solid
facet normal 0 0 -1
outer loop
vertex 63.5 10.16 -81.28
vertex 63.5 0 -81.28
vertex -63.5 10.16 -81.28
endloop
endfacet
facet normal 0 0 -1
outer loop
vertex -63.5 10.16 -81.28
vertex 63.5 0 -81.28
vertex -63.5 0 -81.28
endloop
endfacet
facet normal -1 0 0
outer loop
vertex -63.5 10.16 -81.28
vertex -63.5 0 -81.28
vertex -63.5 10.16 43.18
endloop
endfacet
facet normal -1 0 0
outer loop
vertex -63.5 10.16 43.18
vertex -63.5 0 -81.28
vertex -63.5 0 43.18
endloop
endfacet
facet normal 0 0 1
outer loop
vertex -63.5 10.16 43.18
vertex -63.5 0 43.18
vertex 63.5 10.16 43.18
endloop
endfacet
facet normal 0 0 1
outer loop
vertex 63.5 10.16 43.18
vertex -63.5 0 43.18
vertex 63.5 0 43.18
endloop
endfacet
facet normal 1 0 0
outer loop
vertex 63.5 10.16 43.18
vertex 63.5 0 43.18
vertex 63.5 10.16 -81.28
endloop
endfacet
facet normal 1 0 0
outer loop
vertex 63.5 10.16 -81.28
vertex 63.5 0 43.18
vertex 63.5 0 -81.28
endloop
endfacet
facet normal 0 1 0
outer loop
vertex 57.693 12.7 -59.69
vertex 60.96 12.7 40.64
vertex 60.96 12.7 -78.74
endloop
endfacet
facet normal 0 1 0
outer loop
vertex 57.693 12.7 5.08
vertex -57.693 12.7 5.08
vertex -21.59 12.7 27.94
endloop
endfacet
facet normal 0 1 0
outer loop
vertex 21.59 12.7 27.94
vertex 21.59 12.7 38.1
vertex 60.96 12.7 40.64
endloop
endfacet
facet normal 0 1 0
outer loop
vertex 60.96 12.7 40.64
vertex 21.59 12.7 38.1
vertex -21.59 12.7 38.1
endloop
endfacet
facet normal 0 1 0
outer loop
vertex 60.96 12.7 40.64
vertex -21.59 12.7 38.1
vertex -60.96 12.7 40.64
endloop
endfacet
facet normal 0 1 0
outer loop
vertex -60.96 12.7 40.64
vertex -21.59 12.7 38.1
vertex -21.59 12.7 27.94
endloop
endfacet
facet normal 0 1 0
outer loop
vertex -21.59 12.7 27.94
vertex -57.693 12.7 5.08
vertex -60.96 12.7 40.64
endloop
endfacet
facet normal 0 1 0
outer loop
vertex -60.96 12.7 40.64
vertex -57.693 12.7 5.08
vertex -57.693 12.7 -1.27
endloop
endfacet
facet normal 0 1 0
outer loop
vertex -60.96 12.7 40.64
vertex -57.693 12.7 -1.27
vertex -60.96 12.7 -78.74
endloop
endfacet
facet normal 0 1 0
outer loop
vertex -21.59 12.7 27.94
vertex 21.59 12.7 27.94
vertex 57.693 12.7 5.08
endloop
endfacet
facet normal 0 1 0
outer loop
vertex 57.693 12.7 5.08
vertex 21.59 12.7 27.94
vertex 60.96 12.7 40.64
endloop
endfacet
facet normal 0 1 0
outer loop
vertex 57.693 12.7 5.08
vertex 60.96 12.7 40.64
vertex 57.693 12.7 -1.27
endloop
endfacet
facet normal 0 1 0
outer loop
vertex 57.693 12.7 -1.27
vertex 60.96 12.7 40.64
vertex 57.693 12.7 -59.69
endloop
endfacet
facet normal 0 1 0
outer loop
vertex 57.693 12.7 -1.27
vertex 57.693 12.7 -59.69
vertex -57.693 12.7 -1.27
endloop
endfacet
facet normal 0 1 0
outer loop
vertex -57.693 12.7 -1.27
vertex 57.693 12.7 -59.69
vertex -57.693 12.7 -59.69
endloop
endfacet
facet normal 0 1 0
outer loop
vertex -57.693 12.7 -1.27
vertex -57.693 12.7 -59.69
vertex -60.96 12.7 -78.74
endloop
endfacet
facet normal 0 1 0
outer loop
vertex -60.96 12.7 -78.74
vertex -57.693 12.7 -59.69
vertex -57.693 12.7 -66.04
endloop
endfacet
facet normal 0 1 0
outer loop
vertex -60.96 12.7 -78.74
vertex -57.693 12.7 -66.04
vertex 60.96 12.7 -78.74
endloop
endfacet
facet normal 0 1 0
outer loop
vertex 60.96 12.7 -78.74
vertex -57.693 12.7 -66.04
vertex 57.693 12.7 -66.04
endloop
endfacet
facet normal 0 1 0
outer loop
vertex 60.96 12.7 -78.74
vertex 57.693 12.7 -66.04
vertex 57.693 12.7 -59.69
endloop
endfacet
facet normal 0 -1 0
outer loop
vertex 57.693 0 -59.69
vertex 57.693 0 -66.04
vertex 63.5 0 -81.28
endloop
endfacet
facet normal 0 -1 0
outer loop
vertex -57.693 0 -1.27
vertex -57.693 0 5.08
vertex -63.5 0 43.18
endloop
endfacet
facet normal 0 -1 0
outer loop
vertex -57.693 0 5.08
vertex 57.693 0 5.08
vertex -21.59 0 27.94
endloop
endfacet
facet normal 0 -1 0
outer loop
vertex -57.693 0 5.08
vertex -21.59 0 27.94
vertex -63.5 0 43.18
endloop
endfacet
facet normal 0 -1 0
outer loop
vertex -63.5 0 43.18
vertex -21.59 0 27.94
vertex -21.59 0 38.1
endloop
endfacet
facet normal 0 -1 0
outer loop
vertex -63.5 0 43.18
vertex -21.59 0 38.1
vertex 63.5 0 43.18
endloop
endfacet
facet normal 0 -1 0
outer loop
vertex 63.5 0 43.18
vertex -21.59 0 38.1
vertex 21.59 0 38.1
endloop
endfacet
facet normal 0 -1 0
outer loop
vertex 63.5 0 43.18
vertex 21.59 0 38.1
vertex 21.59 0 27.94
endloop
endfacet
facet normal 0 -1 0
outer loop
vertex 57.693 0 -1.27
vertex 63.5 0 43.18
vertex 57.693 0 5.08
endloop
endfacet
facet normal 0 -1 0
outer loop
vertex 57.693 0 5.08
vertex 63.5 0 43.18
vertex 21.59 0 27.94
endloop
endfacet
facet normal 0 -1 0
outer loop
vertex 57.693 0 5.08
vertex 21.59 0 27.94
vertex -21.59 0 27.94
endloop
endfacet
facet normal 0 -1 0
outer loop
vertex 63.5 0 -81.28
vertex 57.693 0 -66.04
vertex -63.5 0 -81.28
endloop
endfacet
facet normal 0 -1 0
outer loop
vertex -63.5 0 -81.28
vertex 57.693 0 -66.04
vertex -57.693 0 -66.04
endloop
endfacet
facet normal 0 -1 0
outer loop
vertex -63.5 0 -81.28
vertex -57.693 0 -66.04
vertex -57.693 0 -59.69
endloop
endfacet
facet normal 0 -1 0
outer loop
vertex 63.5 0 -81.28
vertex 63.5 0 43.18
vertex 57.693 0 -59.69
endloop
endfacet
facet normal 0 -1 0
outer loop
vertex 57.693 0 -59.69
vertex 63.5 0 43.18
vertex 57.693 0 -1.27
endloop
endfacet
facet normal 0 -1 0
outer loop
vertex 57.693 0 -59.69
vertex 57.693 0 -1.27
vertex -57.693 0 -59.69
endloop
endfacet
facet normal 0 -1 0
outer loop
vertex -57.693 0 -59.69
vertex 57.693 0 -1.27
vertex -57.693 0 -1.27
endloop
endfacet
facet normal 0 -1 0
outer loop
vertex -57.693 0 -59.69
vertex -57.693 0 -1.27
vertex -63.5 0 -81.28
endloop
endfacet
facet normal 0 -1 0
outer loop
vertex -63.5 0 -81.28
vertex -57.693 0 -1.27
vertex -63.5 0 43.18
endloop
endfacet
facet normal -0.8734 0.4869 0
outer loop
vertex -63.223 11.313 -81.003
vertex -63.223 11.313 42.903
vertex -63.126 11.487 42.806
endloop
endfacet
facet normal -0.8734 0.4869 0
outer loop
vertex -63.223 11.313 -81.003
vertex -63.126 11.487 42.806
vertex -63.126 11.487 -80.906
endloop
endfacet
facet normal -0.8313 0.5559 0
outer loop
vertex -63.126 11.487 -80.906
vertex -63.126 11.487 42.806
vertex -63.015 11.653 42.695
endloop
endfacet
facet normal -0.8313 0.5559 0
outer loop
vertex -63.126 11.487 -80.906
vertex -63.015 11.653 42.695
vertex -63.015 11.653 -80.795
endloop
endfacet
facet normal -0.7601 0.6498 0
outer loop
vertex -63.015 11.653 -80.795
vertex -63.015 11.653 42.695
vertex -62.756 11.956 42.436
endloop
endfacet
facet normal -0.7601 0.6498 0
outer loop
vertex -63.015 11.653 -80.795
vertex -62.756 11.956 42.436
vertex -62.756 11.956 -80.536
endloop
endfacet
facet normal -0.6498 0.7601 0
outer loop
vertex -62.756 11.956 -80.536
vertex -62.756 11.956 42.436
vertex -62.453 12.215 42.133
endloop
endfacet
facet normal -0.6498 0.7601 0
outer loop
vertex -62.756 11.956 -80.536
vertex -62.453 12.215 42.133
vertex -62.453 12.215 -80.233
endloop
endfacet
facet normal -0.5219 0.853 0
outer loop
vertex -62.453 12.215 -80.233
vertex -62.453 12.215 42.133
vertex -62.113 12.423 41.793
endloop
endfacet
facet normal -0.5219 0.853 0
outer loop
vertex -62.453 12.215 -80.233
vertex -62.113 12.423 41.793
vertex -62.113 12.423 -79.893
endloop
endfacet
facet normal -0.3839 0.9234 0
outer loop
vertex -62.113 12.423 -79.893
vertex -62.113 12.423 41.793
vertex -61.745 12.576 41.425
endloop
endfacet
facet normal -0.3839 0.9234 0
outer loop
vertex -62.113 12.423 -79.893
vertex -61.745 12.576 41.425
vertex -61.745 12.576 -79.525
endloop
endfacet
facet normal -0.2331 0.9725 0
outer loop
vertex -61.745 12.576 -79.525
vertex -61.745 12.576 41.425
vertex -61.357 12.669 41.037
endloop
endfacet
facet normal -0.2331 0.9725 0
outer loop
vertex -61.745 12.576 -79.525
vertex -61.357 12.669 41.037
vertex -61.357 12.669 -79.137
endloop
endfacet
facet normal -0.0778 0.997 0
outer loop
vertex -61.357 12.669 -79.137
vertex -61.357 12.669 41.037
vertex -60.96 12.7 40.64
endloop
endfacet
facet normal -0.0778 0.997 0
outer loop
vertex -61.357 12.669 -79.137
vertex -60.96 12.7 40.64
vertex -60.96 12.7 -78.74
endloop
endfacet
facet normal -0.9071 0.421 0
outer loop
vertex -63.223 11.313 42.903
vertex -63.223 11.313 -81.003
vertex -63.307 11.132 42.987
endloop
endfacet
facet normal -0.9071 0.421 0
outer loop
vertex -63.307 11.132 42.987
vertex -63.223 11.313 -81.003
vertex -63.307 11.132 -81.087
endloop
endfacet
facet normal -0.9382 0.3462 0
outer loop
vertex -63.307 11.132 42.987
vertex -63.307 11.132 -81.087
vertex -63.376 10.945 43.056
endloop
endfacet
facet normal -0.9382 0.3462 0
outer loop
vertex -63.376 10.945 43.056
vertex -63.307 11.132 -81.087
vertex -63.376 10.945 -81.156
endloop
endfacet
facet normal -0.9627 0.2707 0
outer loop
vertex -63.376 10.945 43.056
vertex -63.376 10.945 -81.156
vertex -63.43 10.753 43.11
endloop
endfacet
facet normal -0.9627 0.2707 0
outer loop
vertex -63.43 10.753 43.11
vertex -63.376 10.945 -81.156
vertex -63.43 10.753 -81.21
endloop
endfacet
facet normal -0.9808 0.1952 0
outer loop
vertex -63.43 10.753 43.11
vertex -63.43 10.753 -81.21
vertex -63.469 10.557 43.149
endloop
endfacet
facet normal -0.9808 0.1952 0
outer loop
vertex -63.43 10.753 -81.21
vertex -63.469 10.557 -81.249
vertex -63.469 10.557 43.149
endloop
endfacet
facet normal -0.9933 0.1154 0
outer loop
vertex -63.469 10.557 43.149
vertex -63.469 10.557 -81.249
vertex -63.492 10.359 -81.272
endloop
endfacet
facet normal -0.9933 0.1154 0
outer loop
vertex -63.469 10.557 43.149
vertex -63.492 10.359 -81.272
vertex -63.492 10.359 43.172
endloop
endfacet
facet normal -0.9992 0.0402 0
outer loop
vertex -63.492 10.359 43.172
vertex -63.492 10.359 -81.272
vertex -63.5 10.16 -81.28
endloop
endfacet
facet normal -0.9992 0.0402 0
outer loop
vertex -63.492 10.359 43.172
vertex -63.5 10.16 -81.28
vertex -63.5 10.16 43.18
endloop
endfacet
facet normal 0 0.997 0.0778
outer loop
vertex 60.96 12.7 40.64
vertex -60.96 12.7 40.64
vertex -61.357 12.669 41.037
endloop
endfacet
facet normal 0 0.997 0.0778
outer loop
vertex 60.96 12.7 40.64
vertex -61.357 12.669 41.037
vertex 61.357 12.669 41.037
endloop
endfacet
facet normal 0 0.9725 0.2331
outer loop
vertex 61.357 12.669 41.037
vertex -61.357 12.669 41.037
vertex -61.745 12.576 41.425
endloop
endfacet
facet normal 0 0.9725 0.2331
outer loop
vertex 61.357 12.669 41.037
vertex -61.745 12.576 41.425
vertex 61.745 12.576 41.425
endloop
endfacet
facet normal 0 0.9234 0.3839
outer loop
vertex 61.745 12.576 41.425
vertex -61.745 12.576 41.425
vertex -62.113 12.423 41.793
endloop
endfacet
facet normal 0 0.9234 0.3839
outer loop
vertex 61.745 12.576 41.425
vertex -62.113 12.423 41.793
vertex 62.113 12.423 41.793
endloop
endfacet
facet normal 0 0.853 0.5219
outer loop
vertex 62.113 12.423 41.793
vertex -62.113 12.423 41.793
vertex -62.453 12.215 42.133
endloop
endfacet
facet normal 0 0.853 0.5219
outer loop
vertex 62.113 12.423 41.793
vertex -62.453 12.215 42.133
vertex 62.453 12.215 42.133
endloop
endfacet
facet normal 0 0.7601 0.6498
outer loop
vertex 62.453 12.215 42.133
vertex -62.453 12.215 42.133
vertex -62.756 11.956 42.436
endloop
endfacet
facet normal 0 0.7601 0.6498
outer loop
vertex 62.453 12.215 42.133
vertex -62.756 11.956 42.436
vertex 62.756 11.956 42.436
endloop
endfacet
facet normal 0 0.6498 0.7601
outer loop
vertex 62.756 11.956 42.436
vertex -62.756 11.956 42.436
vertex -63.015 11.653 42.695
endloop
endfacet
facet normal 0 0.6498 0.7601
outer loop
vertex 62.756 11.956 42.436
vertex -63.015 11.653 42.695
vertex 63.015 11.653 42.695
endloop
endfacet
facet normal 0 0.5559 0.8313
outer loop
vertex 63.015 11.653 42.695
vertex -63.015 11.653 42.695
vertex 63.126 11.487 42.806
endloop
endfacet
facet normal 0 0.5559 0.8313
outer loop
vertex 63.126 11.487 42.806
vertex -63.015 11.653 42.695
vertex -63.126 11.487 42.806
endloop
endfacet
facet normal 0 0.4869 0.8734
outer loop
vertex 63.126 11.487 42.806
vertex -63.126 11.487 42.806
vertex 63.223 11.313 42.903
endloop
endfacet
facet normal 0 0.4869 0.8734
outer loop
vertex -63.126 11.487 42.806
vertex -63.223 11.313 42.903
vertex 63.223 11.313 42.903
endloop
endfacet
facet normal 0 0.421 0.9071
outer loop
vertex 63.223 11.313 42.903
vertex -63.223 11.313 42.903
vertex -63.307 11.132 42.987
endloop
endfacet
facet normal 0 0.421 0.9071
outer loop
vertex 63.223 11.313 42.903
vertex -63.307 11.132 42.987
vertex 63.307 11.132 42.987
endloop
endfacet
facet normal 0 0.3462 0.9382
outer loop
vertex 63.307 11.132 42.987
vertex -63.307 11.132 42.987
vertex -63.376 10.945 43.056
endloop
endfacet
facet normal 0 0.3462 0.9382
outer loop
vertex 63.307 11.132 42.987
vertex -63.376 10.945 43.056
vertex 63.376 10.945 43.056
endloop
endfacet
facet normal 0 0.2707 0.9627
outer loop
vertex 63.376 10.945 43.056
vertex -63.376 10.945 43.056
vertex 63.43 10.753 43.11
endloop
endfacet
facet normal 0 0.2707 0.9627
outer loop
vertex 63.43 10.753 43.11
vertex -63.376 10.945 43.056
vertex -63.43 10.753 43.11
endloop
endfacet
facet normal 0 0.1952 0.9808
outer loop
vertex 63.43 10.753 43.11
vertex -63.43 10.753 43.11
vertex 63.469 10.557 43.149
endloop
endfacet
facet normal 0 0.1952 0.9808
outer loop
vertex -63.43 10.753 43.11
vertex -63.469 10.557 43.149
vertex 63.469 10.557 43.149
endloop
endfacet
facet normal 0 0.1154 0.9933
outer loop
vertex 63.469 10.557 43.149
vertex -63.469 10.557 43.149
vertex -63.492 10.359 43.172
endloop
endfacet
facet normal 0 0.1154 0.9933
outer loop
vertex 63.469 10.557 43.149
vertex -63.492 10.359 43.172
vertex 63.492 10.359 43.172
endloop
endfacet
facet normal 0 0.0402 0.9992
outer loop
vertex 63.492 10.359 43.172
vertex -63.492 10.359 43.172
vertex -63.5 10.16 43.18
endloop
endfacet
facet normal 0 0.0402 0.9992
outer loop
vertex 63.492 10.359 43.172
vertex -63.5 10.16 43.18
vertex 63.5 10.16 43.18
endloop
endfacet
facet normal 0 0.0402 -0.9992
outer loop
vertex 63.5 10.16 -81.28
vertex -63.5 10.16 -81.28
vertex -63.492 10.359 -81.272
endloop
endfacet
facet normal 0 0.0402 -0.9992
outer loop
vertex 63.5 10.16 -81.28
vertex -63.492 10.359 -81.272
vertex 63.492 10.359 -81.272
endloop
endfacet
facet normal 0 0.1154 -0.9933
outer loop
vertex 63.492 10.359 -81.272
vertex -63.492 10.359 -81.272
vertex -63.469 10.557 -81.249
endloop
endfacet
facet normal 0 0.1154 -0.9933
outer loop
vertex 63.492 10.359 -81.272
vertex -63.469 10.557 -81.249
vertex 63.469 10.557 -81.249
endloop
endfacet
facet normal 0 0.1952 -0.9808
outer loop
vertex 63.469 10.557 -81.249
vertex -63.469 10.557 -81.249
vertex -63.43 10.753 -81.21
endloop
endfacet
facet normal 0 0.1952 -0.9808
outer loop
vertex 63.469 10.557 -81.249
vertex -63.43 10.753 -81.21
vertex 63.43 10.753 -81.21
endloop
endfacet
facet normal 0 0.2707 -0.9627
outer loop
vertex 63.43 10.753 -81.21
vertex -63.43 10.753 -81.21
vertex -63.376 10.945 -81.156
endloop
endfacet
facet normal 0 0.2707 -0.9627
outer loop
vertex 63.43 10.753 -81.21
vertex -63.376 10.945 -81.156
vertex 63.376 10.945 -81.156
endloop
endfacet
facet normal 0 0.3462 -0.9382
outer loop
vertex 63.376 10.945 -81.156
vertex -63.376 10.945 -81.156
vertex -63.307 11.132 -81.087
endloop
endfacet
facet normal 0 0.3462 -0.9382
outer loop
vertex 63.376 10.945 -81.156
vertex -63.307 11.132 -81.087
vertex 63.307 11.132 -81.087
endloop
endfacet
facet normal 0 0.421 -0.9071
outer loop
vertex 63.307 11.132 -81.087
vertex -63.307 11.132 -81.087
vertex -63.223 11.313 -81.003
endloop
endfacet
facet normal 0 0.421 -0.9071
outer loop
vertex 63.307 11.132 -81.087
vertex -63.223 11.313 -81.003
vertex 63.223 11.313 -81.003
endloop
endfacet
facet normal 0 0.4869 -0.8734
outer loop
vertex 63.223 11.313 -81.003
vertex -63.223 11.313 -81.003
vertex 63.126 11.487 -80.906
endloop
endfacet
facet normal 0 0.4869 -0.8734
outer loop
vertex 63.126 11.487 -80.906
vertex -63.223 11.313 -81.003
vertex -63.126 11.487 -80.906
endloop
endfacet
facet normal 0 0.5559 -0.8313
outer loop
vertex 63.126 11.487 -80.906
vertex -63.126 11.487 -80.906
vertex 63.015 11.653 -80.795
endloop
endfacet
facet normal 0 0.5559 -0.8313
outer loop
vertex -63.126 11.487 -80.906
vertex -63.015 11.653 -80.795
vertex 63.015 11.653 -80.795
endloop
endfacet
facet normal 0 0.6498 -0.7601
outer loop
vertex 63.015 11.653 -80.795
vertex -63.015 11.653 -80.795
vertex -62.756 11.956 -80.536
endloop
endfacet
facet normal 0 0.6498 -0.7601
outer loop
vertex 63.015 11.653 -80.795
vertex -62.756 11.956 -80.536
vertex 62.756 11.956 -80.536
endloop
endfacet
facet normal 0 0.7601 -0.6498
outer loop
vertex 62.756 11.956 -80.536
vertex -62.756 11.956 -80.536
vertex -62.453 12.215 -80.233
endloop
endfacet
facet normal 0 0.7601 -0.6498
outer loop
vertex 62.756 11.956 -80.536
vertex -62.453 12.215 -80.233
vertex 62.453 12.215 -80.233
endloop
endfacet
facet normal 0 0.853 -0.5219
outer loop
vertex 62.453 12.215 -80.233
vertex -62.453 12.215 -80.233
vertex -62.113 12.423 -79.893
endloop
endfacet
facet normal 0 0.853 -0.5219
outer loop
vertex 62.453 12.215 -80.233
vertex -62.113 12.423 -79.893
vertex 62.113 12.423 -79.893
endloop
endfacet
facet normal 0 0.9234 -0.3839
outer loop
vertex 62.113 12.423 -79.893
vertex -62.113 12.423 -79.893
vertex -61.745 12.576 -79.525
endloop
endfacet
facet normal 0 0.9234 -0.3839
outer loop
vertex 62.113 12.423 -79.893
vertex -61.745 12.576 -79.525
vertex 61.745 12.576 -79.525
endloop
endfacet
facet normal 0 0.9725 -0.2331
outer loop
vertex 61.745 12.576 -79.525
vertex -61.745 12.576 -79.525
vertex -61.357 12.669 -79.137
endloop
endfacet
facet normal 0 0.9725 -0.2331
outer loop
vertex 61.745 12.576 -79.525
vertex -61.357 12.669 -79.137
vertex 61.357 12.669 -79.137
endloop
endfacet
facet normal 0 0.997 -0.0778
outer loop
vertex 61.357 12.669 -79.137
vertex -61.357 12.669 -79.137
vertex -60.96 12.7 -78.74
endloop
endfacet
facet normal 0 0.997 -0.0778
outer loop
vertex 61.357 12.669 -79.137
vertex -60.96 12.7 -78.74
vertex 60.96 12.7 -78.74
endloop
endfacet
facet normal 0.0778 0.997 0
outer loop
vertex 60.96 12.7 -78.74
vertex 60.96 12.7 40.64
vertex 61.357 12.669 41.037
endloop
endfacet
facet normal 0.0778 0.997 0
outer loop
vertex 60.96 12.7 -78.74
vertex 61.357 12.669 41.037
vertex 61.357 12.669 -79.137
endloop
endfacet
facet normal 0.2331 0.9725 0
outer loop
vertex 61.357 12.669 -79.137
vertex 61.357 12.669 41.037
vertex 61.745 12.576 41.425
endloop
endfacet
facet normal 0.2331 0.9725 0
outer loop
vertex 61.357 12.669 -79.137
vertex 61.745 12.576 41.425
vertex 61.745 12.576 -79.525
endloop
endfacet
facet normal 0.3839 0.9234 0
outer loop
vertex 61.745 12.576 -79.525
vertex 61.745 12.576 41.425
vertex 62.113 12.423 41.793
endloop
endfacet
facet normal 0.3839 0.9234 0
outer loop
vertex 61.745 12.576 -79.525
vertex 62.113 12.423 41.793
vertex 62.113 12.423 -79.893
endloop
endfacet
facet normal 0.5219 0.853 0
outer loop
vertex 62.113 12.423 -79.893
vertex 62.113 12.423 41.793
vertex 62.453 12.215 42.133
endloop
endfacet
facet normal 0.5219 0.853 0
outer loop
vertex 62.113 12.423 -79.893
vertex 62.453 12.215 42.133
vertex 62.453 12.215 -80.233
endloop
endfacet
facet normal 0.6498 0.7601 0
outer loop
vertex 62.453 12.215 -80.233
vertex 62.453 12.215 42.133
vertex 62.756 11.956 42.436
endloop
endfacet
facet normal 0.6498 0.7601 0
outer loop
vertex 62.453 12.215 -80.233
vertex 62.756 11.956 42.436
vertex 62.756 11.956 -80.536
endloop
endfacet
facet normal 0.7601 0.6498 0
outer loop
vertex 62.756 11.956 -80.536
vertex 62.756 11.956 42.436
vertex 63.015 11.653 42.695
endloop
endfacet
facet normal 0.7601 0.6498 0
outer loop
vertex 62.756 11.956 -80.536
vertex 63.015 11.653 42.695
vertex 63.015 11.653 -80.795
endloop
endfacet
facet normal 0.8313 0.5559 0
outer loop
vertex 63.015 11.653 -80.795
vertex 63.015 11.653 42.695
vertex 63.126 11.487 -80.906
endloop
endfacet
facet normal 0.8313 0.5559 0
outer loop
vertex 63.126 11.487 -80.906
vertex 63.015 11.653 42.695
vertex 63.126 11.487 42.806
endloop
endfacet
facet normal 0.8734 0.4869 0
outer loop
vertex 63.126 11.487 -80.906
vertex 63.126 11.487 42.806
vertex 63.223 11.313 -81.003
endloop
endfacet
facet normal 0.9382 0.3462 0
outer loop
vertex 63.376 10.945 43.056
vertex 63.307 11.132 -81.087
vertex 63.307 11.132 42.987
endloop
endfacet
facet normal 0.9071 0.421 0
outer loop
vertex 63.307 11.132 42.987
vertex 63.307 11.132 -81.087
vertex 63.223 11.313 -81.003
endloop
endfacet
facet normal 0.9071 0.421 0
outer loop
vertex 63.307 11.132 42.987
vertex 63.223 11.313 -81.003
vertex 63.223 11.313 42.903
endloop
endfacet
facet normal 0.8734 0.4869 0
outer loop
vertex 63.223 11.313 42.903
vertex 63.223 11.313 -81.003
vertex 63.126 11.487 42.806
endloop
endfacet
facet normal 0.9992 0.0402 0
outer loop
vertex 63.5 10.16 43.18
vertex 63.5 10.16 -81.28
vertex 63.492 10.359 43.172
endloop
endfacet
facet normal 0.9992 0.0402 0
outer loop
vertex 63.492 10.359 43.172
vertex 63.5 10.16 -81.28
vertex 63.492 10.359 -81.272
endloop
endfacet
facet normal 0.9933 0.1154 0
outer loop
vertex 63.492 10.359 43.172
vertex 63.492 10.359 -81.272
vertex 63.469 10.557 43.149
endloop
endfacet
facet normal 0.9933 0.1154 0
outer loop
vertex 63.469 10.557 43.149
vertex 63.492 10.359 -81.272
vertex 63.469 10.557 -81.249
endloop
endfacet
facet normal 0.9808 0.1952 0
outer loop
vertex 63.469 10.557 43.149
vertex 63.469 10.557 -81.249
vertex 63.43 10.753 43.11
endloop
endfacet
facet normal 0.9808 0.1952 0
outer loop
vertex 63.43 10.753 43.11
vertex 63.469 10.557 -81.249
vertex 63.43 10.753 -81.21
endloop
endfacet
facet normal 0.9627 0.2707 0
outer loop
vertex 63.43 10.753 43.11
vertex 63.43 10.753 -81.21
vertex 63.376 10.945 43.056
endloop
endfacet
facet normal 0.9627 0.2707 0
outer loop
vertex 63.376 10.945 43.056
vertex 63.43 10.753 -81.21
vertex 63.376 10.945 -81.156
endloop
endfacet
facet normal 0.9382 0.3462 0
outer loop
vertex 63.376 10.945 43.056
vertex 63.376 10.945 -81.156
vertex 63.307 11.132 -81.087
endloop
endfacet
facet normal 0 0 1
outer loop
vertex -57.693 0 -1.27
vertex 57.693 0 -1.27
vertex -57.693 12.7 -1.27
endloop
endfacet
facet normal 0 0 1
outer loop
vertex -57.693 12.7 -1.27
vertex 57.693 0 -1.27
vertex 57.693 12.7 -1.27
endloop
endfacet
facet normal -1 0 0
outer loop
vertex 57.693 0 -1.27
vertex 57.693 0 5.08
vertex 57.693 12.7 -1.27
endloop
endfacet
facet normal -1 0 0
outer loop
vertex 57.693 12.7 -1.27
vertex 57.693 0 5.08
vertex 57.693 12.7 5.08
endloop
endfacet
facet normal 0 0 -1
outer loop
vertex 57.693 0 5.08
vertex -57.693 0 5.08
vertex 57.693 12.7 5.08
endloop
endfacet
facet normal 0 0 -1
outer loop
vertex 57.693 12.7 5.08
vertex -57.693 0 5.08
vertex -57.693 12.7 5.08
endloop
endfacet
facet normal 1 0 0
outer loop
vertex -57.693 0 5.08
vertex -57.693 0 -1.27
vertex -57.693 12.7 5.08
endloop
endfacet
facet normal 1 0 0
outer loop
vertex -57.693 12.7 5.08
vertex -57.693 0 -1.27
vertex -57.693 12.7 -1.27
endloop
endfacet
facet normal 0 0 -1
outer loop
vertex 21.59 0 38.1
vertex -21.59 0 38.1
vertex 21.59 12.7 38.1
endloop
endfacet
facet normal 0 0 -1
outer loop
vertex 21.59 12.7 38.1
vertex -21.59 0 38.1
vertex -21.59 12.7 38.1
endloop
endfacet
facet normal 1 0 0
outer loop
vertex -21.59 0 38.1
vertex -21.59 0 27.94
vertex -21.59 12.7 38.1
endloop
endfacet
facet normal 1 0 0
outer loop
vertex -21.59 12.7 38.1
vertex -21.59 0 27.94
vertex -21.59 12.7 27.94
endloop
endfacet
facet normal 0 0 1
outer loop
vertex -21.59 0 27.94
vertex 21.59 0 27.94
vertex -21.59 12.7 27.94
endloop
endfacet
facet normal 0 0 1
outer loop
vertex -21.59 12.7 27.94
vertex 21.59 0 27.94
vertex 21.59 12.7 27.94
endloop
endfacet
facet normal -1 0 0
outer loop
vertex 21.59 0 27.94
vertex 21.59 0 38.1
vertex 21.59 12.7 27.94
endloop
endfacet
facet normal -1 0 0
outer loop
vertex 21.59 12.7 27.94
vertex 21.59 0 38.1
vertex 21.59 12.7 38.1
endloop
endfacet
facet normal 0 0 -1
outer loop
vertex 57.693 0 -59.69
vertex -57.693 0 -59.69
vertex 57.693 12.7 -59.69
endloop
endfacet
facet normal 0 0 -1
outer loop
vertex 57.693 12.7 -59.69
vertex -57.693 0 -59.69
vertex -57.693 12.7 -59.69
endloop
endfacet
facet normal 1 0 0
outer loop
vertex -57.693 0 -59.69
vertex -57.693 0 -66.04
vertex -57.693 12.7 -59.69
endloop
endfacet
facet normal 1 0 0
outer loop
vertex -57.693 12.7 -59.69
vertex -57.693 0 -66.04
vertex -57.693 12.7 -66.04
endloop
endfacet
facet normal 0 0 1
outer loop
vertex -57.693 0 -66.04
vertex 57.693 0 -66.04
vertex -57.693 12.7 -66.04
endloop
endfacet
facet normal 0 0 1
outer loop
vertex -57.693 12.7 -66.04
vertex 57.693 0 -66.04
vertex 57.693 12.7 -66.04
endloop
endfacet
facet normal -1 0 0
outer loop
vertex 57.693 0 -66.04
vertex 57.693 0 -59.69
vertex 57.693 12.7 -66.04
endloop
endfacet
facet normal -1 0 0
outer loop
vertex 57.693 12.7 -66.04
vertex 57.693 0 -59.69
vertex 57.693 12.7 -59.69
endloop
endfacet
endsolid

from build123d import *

# Parameters (mm, degrees)
SKETCH2_W           = 127
SKETCH2_H           = 124.46
BOSS_EXTRUDE1_DEPTH = 12.7
FILLET1_R           = 2.54
SKETCH3_W           = 115.38555028
SKETCH3_H           = 6.35
SKETCH3_W_2         = 43.18
SKETCH3_H_2         = 10.16
CUT_EXTRUDE1_DEPTH  = 12.7


with BuildPart() as part:
    # Sketch2 → Boss-Extrude1 (new body)
    with BuildSketch(Plane(origin=(0, 0, 0), x_dir=(1, 0, 0), z_dir=(0, 1, 0))):
        with Locations((0, 19.05)):
            Rectangle(SKETCH2_W, SKETCH2_H)
    extrude(amount=BOSS_EXTRUDE1_DEPTH)

    # Fillet1
    fillet1_edges = [part.edges().sort_by_distance(p)[0] for p in [
        (0, 12.7, 43.18),
        (63.5, 12.7, -19.05),
        (0, 12.7, -81.28),
        (-63.5, 12.7, -19.05),
    ]]
    fillet(fillet1_edges, radius=FILLET1_R)

    # Sketch3 → Cut-Extrude1 (cut)
    with BuildSketch(Plane(origin=(0, 12.7, 0), x_dir=(1, 0, 0), z_dir=(0, 1, 0))):
        with Locations((-2.54e-06, 62.865)):
            Rectangle(SKETCH3_W, SKETCH3_H)
        with Locations((0, -33.02)):
            Rectangle(SKETCH3_W_2, SKETCH3_H_2)
        with Locations((-2.54e-06, -1.905)):
            Rectangle(SKETCH3_W, SKETCH3_H)
    extrude(amount=-CUT_EXTRUDE1_DEPTH, mode=Mode.SUBTRACT)


solid = part.part
